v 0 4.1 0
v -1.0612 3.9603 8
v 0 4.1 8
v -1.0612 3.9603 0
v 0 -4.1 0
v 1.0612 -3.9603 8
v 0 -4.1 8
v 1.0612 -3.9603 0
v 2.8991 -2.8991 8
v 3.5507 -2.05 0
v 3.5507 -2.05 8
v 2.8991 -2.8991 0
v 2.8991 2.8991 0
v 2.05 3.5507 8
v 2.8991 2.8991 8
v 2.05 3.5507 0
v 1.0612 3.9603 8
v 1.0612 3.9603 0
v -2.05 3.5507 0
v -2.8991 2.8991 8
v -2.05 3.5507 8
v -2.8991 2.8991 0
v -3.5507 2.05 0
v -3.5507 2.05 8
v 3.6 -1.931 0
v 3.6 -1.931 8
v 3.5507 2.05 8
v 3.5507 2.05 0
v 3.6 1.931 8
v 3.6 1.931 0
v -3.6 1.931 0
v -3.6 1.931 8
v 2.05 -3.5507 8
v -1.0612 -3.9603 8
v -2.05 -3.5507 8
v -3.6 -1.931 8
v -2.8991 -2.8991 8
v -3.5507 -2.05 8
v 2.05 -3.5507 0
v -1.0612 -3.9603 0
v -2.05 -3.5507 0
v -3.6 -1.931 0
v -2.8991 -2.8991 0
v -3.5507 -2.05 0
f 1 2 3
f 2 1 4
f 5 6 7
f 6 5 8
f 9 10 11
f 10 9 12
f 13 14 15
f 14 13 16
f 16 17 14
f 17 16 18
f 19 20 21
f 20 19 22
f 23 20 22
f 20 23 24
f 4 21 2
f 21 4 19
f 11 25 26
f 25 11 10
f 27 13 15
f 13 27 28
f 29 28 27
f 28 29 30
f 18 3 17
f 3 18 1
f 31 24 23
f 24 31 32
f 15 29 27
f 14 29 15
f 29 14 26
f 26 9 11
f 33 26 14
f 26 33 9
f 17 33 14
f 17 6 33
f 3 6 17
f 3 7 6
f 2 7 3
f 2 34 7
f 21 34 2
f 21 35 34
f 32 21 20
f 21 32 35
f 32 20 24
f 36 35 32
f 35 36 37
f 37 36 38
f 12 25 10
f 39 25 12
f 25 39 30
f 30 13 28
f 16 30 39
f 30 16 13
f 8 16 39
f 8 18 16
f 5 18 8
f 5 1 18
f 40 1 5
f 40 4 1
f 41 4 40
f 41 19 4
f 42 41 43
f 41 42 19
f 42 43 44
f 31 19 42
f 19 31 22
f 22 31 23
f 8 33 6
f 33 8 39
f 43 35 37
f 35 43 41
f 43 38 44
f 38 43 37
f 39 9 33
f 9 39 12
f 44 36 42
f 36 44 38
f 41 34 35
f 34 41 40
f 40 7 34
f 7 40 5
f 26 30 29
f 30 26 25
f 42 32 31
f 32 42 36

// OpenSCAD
module jack(){
    difference(){
        cylinder(h=8,r=4.1,$fn=24);
        translate([3.6,-2,0]) cube([2,8,8]);
        translate([-5.6,-2,0]) cube([2,8,8]);
    }
};

jack();
